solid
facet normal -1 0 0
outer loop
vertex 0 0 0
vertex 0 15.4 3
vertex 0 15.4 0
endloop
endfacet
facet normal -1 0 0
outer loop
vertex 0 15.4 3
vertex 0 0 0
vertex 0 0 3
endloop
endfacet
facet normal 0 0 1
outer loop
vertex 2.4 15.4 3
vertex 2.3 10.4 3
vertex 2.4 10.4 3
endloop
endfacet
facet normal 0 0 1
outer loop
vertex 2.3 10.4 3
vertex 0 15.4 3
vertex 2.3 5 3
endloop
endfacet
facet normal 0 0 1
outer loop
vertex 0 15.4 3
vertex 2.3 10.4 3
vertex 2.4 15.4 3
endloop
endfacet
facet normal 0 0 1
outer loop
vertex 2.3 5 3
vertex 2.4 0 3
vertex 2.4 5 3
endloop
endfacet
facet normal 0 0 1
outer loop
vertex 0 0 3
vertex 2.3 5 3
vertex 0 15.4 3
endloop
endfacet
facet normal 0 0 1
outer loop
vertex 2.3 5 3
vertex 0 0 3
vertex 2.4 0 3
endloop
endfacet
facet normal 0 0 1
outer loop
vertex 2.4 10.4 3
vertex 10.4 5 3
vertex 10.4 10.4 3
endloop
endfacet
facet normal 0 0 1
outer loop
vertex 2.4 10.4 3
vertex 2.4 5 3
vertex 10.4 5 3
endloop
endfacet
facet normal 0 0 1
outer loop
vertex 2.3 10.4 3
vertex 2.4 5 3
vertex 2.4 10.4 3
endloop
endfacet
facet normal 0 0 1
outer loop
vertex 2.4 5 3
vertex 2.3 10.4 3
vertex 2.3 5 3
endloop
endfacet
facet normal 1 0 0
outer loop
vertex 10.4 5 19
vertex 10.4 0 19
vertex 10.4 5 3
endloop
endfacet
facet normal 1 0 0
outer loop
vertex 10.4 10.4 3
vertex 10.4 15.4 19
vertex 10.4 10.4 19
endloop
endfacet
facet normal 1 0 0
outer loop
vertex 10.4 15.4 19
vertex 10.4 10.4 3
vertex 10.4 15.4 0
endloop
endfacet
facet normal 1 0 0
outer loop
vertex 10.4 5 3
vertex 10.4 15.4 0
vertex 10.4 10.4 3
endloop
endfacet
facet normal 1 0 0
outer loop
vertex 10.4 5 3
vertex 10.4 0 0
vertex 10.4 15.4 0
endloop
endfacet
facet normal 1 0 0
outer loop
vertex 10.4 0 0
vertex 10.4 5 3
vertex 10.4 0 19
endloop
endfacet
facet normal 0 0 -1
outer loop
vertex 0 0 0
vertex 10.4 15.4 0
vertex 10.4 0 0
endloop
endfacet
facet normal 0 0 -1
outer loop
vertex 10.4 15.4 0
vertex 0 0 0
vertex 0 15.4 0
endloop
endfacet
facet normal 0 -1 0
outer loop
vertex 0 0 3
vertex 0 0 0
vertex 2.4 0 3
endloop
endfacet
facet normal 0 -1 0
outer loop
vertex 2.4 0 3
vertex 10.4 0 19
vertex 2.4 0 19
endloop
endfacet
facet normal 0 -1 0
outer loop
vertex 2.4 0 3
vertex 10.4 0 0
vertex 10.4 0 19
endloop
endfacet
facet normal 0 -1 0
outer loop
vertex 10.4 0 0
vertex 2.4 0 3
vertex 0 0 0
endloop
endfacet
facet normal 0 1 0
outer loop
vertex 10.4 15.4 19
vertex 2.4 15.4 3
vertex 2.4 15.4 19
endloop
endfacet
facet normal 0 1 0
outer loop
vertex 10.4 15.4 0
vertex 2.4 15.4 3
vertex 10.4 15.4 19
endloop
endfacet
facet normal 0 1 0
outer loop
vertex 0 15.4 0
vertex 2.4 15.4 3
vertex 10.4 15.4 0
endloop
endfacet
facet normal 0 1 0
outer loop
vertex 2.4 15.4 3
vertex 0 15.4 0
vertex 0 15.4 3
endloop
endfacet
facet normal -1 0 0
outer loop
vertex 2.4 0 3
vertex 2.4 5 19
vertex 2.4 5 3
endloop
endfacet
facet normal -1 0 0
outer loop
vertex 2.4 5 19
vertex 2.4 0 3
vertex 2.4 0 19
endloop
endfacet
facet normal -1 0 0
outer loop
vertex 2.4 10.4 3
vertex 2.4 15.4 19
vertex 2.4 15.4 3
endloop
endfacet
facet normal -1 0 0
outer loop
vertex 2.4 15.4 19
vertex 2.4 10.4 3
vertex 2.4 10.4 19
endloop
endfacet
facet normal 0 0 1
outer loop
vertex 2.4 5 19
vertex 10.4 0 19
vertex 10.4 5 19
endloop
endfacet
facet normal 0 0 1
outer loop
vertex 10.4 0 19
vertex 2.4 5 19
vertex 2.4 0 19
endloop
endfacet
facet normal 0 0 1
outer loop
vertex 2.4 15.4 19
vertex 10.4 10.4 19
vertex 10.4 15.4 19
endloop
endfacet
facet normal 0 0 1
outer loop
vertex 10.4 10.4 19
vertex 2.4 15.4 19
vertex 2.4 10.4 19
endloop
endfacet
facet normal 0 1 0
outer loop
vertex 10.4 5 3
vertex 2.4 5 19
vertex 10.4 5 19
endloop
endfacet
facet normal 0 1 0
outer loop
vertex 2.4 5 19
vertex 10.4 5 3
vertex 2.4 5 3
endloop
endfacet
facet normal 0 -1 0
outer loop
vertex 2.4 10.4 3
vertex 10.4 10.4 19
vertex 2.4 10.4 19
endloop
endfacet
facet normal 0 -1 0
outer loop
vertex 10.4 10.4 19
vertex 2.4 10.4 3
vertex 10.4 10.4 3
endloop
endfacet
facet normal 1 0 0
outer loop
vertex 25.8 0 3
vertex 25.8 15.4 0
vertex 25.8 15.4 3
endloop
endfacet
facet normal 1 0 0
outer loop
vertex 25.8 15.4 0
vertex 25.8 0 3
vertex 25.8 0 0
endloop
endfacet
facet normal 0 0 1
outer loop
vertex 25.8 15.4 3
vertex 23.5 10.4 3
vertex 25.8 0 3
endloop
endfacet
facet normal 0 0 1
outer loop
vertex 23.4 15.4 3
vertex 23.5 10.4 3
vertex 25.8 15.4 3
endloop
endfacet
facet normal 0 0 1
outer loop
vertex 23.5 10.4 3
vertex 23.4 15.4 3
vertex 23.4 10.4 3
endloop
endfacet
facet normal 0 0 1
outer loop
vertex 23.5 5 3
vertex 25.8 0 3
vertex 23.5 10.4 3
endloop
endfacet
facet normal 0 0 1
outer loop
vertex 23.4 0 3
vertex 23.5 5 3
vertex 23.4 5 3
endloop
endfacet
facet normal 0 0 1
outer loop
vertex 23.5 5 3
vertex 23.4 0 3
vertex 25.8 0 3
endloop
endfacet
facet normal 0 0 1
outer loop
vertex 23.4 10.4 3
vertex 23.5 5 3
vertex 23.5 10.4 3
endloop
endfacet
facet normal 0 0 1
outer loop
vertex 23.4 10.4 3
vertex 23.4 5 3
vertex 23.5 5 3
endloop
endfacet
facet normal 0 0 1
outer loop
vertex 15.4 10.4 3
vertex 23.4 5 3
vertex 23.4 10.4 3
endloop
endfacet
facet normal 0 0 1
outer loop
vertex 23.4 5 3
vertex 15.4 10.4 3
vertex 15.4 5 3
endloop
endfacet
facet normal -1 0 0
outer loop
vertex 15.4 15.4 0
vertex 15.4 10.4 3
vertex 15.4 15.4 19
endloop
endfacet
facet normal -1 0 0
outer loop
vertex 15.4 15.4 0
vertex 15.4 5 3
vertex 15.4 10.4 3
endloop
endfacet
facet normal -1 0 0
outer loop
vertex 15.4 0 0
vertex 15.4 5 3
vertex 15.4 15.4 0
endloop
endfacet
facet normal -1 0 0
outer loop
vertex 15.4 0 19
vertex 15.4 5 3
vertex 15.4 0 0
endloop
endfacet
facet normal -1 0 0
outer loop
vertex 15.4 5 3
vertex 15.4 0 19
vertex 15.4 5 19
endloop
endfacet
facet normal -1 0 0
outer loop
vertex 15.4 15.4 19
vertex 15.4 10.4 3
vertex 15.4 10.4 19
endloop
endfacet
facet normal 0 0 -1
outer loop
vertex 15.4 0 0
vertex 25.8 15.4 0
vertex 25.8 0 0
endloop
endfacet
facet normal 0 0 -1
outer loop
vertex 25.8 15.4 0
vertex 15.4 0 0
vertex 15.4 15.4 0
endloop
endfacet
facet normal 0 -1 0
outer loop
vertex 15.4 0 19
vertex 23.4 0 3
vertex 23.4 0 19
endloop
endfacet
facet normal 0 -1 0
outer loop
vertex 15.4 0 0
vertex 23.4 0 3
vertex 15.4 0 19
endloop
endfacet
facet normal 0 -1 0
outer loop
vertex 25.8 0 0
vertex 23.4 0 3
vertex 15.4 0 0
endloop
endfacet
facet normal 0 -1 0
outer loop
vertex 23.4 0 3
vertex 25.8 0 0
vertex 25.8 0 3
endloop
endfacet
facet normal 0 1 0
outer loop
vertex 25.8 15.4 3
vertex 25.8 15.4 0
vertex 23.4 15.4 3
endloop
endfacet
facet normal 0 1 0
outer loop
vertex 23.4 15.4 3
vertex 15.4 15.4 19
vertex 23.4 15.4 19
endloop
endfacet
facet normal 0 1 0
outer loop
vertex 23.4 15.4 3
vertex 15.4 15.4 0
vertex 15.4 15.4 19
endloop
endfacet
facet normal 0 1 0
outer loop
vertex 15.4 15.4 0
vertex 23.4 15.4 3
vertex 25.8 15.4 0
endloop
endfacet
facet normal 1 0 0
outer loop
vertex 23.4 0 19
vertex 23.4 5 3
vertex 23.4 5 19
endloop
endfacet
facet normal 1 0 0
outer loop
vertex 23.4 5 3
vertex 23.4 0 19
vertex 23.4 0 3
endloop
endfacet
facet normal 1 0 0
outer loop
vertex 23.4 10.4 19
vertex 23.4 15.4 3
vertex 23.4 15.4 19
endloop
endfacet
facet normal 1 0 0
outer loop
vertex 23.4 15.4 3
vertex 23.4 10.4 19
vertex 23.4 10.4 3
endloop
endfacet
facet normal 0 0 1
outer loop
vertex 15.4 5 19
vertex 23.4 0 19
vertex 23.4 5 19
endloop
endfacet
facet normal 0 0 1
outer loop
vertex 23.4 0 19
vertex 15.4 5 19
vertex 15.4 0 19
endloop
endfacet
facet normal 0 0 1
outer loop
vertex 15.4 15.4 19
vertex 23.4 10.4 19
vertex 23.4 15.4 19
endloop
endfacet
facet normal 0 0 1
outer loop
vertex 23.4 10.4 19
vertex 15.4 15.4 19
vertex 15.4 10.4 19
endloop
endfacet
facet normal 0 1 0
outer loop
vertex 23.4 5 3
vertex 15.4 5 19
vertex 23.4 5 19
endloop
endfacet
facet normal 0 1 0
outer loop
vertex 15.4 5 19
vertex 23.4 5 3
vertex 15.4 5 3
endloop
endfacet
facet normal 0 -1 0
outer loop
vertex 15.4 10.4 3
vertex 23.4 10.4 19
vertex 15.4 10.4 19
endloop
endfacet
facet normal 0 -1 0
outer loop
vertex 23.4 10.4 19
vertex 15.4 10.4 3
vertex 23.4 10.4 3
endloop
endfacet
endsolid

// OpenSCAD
// file: lattice_wall.scad
// lattice_wall.scad

// Front/back walls: run along X, thickness in Y, height in Z
module lattice_wall(len, ht, thick, gap=12, strand=1.6) {
    pitch = gap + strand;
    difference() {
        cube([len, thick, ht]);
        for (xi = [pitch : pitch : len - pitch/2],
             zi = [pitch : pitch : ht  - pitch/2])
            translate([xi, -0.1, zi])
                rotate([0, 45, 0])
                    cube([gap*0.707, thick+0.2, gap*0.707], center=true);
    }
}

// Side walls: run along Y, thickness in X, height in Z
// Holes are diamond-shaped in YZ (visible when looking from outside in X)
module lattice_wall_y(len, ht, thick, gap=12, strand=1.6) {
    pitch = gap + strand;
    difference() {
        cube([thick, len, ht]);
        for (yi = [pitch : pitch : len - pitch/2],
             zi = [pitch : pitch : ht  - pitch/2])
            translate([thick/2, yi, zi])
                rotate([45, 0, 0])
                    cube([thick+0.2, gap*0.707, gap*0.707], center=true);
    }
}
// file: caddy_params.scad
use <lattice_wall.scad>

// --- Overall dimensions ---
total_w = 215;
half_d  = 148;
wall_h  = 70;
cols    = 3;
rows    = 2;
ow      = 2.4;    // outer wall thickness
dt      = 2.0;    // divider thickness
bt      = 3.0;    // base thickness

cell_w = (total_w - 2*ow - (cols-1)*dt) / cols;
cell_d = (half_d  - 2*ow - dt) / rows;

// --- Lattice (side walls only) ---
lat_gap    = 12;
lat_strand = 1.6;

// --- Finger-cutout geometry ---
// Profile Y=0 is arc centre; arc dips to Y=-uc_bot_w/2.
// uc_z_off maps profile-Y to world-Z: world-Z = profile-Y + uc_z_off
//   arc bottom  world-Z = uc_z_off - uc_bot_w/2 = 35 - 15 = 20 mm
//   top of profile world-Z = 35 + 40 = 75 > wall_h = 70 (guaranteed open)
uc_bot_w = 30;    // bottom semicircle diameter
uc_top_w = 36;    // distance between top-corner circle centres
uc_cr    = 8;     // top-corner circle radius (also controls how far above wall the cut exits)
uc_z_off = 35;    // Z offset: arc bottom lands at Z = uc_z_off - uc_bot_w/2 = 20

// Profile-Y at wall top (world-Z = wall_h = 70)
uc_y_wt  = wall_h - uc_z_off;   // = 35

// --- Tongue/groove joint ---
tl  = 40;
th  = 10;
tt  = 5;
tol = 0.5;

// Back half centre tongue — sized to fit as-printed front groove (30mm wide, 11mm tall, ~2.5mm deep)
tl_c = 28;   // 1mm clearance each side of 30mm opening
th_c = 9;    // 1mm clearance each side of 11mm opening
tt_c = 2;    // conservative fit for ~2.5mm groove depth

function ccx(i) = ow + i*(cell_w + dt) + cell_w/2;

tx1 = ow + cell_w + dt/2;
tx2 = ow + 2*(cell_w + dt) - dt/2;
tx_c = total_w / 2;

// --- 2-D U-profile ---
// Hull of bottom half-circle + two side circles at wall-top level.
// The side circles are centred at (+-uc_top_w/2, uc_y_wt) -- IN the solid
// wall material -- so the hull curve sweeps smoothly from solid into U.
// Profile is widest at uc_y_wt (wall top) and tapers down to uc_bot_w.
// Circles reach Y = uc_y_wt + uc_cr = 43, mapping to world-Z = 78 > 70
// so the cut is guaranteed to break through the wall top with no hard edge.
module u_profile_2d() {
    hull() {
        // Bottom half-circle (dips below Y=0)
        intersection() {
            circle(r = uc_bot_w/2, $fn = 64);
            translate([-(uc_bot_w/2 + 1), -uc_bot_w])
                square([uc_bot_w + 2, uc_bot_w]);
        }
        // Top-corner circles: centres in solid wall, arcs sweep into U
        translate([ uc_top_w/2, uc_y_wt]) circle(r = uc_cr, $fn = 32);
        translate([-uc_top_w/2, uc_y_wt]) circle(r = uc_cr, $fn = 32);
    }
}

// --- 3-D cutout through wall of thickness wt ---
module u_cut(wt) {
    translate([0, wt + 0.1, uc_z_off])
        rotate([90, 0, 0])
            linear_extrude(wt + 0.2)
                u_profile_2d();
}

// --- Half-tray ---
// Front/back walls: SOLID (U cutouts print better in solid walls)
// Side walls: lattice (no cutouts, decorative/lightweight)
// 2+1 tongue scheme:
//   Front: 2 tongues (tx1,tx2) + 1 centre groove
//   Back:  2 grooves (tx1,tx2) + 1 centre tongue
module caddy_half(is_front = true) {
    wy_back = half_d - ow;
    wy_div  = ow + cell_d;

    difference() {
        union() {
            // Base
            cube([total_w, half_d, bt]);
            // Front outer wall -- SOLID
            translate([0, 0, bt])
                cube([total_w, ow, wall_h - bt]);
            // Back outer wall -- SOLID
            translate([0, wy_back, bt])
                cube([total_w, ow, wall_h - bt]);
            // Left side wall -- LATTICE
            translate([0, 0, bt])
                lattice_wall_y(half_d, wall_h - bt, ow, lat_gap, lat_strand);
            // Right side wall -- LATTICE
            translate([total_w - ow, 0, bt])
                lattice_wall_y(half_d, wall_h - bt, ow, lat_gap, lat_strand);
            // Vertical column dividers (solid)
            for (i = [1 : cols-1])
                translate([ow + i*(cell_w + dt) - dt/2, ow, bt])
                    cube([dt, half_d - 2*ow, wall_h - bt]);
            // Horizontal row divider (solid)
            translate([ow, wy_div, bt])
                cube([total_w - 2*ow, dt, wall_h - bt]);

            // Joint geometry
            if (is_front) {
                translate([tx1 - tl/2, half_d,         bt+3]) cube([tl, tt,    th]);
                translate([tx2 - tl/2, half_d,         bt+3]) cube([tl, tt,    th]);
                translate([tx_c - tl/2, half_d - tt*2, bt+3]) cube([tl, tt*2,  th]);
            } else {
                translate([tx1 - tl/2, 0, bt+3]) cube([tl, tt*2, th]);
                translate([tx2 - tl/2, 0, bt+3]) cube([tl, tt*2, th]);
                translate([tx_c - tl_c/2, -tt_c, bt+3]) cube([tl_c, tt_c, th_c]);
            }
        }

        // U cutouts
        for (i = [0 : cols-1]) translate([ccx(i), 0,       0]) u_cut(ow);
        for (i = [0 : cols-1]) translate([ccx(i), wy_back, 0]) u_cut(ow);
        for (i = [0 : cols-1]) translate([ccx(i), wy_div,  0]) u_cut(dt);

        // Groove cuts
        if (is_front) {
            translate([tx_c - tl/2 - tol, half_d - tt - tol, bt+3 - tol])
                cube([tl + 2*tol, tt + tol + 0.1, th + 2*tol]);
        } else {
            translate([tx1 - tl/2 - tol, -0.1, bt+3 - tol])
                cube([tl + 2*tol, tt + tol, th + 2*tol]);
            translate([tx2 - tl/2 - tol, -0.1, bt+3 - tol])
                cube([tl + 2*tol, tt + tol, th + 2*tol]);
        }
    }
}
// main file
// ============================================================
//  caddy_clip.scad  --  seam bridge clip for teabag caddy
//
//  Bridge overhangs the outer side wall top (self-locating in X).
//  Legs hang down INSIDE the corner (x = ow onward), avoiding the
//  side wall material entirely.
//  Y-slot spans both seam walls simultaneously (front half back
//  wall + back half front wall = 2*ow combined).
//
//  Print: bridge flat on bed, legs up. Flip to install -- bridge
//  sits proud above wall top, legs drop into the seam corner.
//  File contains left clip + mirrored right clip.
// ============================================================
include <caddy_params.scad>

cy_gap   = 2*ow + 0.6;        // 5.4mm -- Y slot (both seam walls + clearance)
cy_t     = 5.0;                // leg thickness in Y per side
cy_y     = 2*cy_t + cy_gap;   // 15.4mm total Y
leg_x    = 8.0;                // leg depth into caddy (from side wall inner face)
clip_bt  = 3.0;                // bridge thickness
clip_leg = 16.0;               // leg length
clip_h   = clip_bt + clip_leg; // 19mm total

module bridge_clip() {
    difference() {
        union() {
            // Bridge: full width, overhangs outer side wall
            cube([ow + leg_x, cy_y, clip_bt]);
            // Legs: only from inner face of side wall inward (no side wall conflict)
            translate([ow, 0, 0])
                cube([leg_x, cy_y, clip_h]);
        }
        // Y-slot through legs only
        translate([ow - 0.1, cy_t, clip_bt])
            cube([leg_x + 0.2, cy_gap, clip_leg + 1]);
    }
}

// Left clip
bridge_clip();

// Right clip (mirror in X for right side wall)
translate([2*(ow + leg_x) + 5, 0, 0])
    mirror([1, 0, 0])
        bridge_clip();
